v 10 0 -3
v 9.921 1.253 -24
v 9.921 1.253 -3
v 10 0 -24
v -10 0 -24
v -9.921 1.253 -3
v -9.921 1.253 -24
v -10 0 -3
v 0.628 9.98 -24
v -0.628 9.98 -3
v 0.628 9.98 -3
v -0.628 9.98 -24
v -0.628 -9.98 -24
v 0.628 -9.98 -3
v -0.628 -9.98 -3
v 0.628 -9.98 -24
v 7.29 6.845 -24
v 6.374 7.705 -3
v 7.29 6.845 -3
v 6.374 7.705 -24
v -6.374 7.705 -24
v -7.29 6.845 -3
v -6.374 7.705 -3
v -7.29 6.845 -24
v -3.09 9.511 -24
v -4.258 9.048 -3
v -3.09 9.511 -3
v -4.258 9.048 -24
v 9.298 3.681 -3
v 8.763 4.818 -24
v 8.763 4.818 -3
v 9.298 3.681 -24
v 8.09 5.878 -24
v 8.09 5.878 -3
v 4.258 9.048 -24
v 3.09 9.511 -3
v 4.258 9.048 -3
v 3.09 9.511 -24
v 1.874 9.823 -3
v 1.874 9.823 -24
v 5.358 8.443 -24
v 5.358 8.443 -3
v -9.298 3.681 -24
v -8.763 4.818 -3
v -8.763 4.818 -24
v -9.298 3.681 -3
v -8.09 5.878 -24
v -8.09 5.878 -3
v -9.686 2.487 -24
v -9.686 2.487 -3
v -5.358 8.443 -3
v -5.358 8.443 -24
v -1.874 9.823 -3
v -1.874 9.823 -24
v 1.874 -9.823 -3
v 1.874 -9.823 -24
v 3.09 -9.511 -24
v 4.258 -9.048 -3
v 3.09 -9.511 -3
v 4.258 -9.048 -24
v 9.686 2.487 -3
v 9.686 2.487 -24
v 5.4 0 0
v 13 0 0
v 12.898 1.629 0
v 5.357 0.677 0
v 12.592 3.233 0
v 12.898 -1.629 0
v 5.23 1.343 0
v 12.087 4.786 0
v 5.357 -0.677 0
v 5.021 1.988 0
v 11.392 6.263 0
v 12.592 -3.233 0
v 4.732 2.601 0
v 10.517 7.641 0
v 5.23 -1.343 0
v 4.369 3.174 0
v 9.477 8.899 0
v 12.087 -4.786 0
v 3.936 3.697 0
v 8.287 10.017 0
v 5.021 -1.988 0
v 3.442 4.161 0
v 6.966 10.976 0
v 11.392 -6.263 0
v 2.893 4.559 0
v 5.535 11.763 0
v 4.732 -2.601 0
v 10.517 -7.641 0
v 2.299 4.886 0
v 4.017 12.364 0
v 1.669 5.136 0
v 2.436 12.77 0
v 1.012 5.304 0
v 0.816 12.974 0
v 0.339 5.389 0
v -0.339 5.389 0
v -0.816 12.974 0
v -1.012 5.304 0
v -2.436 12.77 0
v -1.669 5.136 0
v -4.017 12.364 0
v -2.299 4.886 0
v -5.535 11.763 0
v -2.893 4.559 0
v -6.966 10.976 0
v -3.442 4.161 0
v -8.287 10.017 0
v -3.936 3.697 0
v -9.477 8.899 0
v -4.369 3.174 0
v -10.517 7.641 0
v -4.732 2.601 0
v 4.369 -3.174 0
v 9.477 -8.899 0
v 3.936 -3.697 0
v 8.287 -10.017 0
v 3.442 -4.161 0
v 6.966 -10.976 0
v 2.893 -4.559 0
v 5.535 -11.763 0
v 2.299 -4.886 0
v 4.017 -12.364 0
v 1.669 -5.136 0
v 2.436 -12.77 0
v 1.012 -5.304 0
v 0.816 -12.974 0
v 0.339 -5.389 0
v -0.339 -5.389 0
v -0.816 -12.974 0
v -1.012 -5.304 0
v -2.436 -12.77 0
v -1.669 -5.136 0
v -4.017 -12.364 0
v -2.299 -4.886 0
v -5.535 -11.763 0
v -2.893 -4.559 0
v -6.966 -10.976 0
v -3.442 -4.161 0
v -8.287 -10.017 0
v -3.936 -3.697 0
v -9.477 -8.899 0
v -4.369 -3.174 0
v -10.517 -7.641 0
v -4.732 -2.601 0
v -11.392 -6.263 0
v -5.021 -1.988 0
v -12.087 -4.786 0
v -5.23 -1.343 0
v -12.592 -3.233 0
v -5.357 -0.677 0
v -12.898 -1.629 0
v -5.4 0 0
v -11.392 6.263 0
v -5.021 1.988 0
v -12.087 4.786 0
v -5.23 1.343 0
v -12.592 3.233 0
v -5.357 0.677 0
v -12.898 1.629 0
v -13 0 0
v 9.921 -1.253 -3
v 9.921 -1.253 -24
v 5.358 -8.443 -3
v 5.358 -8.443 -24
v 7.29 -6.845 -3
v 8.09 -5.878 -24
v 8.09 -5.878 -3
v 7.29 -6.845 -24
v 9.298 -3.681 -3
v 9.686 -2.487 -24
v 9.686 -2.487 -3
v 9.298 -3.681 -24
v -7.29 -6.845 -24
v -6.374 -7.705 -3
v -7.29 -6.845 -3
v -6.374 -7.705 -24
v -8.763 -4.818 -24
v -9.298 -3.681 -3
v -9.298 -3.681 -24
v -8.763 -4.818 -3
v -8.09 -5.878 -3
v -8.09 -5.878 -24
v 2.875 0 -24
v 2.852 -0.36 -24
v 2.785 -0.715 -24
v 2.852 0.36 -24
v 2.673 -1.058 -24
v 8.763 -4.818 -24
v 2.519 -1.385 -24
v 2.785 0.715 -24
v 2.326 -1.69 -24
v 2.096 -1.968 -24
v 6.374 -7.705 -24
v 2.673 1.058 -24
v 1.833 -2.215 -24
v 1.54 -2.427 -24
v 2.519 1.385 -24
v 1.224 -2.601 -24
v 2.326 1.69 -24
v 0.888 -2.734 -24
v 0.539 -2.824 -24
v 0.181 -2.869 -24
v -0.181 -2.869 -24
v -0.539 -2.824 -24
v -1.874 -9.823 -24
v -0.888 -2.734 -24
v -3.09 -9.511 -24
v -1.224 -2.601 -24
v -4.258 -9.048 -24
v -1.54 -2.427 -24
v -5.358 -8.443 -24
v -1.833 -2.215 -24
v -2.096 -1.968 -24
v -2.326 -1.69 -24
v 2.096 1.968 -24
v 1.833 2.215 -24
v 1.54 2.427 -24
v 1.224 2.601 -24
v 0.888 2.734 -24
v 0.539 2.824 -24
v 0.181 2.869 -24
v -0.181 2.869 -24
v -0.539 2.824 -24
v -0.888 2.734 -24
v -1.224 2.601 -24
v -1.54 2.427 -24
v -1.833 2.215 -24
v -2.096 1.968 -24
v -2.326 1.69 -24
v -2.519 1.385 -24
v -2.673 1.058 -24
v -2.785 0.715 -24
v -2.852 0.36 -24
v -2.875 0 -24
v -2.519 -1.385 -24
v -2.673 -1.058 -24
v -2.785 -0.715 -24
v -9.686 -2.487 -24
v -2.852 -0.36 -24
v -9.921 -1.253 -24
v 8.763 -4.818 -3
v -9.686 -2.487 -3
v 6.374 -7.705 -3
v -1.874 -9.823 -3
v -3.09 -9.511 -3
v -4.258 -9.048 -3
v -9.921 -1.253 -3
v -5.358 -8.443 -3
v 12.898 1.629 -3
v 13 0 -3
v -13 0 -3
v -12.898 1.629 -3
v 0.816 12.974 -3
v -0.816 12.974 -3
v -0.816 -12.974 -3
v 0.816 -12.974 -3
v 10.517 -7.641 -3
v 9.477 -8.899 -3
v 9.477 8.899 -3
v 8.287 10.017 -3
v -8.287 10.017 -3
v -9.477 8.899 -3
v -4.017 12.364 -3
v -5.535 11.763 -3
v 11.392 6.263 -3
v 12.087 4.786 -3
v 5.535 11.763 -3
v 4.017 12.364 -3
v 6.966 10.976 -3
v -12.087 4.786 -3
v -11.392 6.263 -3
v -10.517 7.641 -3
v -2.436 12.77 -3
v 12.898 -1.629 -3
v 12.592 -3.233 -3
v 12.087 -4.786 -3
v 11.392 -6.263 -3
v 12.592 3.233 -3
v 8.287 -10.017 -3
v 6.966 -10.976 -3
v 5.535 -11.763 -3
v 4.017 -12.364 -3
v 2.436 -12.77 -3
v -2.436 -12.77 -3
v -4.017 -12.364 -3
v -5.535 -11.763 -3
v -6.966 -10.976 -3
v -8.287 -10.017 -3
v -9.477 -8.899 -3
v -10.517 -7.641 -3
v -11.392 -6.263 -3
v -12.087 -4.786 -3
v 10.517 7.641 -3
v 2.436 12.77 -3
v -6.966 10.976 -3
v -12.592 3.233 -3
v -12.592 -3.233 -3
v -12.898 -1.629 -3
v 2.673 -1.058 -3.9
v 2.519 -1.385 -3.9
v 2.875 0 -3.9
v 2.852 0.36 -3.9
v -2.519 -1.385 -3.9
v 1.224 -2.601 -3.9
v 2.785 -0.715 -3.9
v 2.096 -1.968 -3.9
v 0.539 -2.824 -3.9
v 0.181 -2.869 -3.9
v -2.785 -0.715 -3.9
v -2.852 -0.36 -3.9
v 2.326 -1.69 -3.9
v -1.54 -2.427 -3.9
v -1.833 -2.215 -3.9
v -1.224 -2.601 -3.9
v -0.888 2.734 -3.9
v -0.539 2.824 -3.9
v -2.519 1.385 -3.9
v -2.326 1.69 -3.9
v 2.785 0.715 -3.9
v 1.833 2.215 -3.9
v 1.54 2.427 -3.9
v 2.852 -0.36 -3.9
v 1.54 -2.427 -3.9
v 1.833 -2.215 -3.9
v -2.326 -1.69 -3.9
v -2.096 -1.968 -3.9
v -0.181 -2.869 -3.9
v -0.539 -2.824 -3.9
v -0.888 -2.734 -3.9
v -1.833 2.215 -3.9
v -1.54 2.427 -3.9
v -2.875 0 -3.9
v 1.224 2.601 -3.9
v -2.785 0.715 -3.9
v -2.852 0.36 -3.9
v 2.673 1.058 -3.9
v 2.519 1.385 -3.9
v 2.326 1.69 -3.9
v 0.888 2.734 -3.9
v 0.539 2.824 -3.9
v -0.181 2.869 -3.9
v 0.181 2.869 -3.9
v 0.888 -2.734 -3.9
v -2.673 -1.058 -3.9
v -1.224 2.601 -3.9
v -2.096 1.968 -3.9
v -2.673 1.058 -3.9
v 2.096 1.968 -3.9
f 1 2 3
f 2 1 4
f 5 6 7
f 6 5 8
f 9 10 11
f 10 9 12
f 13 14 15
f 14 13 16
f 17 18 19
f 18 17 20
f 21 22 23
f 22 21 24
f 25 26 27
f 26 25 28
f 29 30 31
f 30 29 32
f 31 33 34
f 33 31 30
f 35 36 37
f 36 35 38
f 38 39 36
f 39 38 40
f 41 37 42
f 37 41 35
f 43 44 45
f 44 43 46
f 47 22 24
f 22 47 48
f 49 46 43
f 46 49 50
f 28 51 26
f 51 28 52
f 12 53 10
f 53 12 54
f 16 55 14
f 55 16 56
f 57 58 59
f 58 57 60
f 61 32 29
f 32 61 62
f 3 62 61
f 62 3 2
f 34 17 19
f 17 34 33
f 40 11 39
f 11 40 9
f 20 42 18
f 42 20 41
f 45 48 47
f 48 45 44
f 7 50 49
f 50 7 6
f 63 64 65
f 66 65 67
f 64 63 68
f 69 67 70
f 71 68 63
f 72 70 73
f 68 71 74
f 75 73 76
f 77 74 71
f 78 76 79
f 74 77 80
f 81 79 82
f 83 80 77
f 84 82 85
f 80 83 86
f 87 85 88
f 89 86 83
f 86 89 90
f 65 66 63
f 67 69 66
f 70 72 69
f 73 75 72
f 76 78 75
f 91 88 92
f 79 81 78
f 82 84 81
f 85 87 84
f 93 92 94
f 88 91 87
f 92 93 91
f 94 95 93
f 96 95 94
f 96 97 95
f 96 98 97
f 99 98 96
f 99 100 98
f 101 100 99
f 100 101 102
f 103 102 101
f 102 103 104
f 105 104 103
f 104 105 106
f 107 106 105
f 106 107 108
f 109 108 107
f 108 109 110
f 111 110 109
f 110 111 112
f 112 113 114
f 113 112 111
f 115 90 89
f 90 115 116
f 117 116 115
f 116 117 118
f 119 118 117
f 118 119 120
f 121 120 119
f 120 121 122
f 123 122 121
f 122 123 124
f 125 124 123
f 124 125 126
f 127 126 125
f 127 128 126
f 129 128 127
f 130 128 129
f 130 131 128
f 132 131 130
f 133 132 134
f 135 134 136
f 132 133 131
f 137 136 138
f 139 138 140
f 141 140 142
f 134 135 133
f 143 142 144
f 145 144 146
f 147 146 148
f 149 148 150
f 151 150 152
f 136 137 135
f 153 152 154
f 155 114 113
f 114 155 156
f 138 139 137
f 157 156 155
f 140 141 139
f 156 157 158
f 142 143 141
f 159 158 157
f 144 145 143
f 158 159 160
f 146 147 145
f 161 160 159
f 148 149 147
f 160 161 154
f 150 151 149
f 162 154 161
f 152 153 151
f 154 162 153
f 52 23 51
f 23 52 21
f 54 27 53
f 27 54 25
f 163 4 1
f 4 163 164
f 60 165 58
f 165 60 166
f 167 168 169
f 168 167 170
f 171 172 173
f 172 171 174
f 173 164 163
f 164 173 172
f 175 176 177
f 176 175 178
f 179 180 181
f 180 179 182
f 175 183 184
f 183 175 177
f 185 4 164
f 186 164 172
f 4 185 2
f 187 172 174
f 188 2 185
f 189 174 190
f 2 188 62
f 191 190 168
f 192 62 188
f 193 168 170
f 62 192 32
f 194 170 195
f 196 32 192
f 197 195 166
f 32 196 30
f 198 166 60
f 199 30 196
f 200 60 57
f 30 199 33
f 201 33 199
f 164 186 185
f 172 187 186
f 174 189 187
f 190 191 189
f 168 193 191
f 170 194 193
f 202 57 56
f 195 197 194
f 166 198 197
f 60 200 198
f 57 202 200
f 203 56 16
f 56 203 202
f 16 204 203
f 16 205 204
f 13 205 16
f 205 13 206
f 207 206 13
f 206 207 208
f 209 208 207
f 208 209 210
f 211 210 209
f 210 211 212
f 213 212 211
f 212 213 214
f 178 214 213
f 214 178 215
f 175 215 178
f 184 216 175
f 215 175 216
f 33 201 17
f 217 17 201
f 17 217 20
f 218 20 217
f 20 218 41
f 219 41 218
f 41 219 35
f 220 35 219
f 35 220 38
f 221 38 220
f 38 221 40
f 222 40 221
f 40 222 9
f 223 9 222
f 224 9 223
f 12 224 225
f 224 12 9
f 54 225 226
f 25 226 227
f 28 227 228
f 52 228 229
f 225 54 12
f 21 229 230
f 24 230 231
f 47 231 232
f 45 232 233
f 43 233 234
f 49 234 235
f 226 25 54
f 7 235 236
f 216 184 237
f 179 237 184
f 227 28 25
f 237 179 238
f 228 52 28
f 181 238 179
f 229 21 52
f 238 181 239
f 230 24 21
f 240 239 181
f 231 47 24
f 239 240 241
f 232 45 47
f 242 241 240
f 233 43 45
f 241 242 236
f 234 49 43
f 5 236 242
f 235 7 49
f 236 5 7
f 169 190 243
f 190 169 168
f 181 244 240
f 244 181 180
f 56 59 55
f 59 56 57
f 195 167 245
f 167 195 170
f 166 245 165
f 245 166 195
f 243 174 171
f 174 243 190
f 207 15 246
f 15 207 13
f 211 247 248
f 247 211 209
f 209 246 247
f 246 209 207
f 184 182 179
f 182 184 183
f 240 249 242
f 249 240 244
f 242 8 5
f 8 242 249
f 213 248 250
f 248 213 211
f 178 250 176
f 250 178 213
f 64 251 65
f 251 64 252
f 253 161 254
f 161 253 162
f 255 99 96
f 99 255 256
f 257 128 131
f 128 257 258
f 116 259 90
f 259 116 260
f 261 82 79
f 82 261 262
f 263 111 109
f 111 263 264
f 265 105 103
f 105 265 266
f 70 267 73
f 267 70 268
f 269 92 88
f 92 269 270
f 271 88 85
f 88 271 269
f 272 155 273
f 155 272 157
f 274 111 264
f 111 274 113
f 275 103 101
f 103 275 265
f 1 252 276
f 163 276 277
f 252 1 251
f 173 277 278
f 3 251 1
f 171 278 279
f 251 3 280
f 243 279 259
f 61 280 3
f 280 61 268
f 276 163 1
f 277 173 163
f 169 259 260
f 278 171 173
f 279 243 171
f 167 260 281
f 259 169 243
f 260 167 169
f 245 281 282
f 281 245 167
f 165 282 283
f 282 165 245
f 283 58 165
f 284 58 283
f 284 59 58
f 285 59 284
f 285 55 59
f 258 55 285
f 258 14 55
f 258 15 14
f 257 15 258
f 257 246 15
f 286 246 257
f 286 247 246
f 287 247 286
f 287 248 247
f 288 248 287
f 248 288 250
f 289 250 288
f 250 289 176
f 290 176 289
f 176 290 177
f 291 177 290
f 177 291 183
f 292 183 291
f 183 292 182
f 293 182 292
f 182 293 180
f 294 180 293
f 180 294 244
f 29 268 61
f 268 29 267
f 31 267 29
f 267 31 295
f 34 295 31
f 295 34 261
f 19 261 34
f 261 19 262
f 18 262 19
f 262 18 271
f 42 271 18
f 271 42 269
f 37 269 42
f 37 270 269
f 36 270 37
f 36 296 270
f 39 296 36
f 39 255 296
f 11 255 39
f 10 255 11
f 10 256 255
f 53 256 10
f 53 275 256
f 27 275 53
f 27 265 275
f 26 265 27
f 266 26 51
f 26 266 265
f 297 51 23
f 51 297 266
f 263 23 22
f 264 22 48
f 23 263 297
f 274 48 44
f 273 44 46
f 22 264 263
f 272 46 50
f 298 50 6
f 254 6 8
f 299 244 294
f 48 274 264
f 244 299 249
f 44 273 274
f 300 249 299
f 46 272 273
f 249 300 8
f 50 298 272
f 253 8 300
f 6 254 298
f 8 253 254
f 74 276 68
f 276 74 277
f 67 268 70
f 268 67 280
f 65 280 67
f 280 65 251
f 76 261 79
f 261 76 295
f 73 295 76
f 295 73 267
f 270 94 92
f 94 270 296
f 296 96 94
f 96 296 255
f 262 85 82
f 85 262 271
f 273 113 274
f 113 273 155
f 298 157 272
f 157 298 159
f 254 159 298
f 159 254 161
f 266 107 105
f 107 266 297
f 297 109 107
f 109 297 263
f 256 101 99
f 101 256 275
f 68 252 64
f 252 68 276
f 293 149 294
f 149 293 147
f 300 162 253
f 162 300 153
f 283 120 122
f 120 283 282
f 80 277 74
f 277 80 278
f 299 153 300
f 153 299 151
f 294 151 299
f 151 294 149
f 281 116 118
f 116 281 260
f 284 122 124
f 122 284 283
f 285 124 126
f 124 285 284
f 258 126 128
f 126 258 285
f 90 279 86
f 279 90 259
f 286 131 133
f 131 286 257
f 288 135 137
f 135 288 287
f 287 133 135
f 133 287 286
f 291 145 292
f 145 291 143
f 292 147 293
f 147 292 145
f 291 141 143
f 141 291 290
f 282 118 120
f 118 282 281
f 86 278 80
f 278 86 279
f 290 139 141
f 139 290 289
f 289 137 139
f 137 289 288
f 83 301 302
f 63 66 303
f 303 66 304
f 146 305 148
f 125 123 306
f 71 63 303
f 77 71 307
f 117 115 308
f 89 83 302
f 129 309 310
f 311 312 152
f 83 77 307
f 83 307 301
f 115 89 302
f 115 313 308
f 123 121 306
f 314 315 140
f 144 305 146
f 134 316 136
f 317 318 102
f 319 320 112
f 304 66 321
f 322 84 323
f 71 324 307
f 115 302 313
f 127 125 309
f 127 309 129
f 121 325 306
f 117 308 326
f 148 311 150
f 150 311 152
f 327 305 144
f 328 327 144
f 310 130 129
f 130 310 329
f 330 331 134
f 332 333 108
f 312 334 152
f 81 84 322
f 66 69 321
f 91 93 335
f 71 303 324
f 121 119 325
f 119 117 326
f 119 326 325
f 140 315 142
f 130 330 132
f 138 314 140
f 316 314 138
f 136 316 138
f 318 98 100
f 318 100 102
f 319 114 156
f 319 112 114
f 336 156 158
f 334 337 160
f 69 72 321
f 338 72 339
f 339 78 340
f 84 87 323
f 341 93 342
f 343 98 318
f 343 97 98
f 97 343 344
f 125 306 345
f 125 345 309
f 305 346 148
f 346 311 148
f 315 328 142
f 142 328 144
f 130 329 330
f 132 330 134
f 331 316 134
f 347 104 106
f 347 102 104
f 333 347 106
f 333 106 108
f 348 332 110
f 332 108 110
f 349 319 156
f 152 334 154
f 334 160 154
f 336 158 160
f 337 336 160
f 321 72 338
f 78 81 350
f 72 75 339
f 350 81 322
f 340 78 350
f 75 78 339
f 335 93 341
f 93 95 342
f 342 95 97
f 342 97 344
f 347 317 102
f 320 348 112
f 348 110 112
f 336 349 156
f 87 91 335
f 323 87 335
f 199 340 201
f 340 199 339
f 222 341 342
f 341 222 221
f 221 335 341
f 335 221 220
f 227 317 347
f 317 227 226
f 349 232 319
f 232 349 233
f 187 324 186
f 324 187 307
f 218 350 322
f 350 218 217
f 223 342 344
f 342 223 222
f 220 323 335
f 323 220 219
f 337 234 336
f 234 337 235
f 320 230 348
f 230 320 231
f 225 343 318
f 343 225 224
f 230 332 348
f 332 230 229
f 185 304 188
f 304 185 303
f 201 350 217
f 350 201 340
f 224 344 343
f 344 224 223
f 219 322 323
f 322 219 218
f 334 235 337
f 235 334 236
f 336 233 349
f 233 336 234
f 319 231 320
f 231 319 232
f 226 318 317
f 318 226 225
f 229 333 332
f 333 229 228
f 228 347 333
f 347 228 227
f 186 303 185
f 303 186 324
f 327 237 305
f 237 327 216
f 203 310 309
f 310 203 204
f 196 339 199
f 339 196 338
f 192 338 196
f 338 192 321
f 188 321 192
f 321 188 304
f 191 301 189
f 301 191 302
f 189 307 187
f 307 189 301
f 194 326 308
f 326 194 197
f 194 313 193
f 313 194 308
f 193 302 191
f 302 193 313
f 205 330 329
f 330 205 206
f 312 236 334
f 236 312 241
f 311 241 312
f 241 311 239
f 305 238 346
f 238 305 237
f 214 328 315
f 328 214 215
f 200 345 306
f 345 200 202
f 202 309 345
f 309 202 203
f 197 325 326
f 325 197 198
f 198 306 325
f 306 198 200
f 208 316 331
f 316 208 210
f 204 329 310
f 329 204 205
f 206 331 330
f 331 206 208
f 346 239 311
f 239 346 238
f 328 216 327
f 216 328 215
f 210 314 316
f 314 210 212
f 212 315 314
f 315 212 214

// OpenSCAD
$fn = 50;


difference() {
	union() {
		translate(v = [0, 0, -24.0000000000]) {
			cylinder(h = 24, r = 10.0000000000);
		}
		translate(v = [0, 0, -3.0000000000]) {
			cylinder(h = 3, r = 13.0000000000);
		}
	}
	union() {
		translate(v = [0, 0, 0]) {
			rotate(a = [0, 0, 0]) {
				difference() {
					union() {
						#translate(v = [0, 0, -24.0000000000]) {
							cylinder(h = 24, r = 2.6000000000);
						}
						#translate(v = [0, 0, -3.9000000000]) {
							cylinder(h = 3.9000000000, r1 = 2.8750000000, r2 = 5.4000000000);
						}
						#translate(v = [0, 0, -24.0000000000]) {
							cylinder(h = 24, r = 2.8750000000);
						}
						#translate(v = [0, 0, -24.0000000000]) {
							cylinder(h = 24, r = 2.6000000000);
						}
					}
					union();
				}
			}
		}
	}
}
